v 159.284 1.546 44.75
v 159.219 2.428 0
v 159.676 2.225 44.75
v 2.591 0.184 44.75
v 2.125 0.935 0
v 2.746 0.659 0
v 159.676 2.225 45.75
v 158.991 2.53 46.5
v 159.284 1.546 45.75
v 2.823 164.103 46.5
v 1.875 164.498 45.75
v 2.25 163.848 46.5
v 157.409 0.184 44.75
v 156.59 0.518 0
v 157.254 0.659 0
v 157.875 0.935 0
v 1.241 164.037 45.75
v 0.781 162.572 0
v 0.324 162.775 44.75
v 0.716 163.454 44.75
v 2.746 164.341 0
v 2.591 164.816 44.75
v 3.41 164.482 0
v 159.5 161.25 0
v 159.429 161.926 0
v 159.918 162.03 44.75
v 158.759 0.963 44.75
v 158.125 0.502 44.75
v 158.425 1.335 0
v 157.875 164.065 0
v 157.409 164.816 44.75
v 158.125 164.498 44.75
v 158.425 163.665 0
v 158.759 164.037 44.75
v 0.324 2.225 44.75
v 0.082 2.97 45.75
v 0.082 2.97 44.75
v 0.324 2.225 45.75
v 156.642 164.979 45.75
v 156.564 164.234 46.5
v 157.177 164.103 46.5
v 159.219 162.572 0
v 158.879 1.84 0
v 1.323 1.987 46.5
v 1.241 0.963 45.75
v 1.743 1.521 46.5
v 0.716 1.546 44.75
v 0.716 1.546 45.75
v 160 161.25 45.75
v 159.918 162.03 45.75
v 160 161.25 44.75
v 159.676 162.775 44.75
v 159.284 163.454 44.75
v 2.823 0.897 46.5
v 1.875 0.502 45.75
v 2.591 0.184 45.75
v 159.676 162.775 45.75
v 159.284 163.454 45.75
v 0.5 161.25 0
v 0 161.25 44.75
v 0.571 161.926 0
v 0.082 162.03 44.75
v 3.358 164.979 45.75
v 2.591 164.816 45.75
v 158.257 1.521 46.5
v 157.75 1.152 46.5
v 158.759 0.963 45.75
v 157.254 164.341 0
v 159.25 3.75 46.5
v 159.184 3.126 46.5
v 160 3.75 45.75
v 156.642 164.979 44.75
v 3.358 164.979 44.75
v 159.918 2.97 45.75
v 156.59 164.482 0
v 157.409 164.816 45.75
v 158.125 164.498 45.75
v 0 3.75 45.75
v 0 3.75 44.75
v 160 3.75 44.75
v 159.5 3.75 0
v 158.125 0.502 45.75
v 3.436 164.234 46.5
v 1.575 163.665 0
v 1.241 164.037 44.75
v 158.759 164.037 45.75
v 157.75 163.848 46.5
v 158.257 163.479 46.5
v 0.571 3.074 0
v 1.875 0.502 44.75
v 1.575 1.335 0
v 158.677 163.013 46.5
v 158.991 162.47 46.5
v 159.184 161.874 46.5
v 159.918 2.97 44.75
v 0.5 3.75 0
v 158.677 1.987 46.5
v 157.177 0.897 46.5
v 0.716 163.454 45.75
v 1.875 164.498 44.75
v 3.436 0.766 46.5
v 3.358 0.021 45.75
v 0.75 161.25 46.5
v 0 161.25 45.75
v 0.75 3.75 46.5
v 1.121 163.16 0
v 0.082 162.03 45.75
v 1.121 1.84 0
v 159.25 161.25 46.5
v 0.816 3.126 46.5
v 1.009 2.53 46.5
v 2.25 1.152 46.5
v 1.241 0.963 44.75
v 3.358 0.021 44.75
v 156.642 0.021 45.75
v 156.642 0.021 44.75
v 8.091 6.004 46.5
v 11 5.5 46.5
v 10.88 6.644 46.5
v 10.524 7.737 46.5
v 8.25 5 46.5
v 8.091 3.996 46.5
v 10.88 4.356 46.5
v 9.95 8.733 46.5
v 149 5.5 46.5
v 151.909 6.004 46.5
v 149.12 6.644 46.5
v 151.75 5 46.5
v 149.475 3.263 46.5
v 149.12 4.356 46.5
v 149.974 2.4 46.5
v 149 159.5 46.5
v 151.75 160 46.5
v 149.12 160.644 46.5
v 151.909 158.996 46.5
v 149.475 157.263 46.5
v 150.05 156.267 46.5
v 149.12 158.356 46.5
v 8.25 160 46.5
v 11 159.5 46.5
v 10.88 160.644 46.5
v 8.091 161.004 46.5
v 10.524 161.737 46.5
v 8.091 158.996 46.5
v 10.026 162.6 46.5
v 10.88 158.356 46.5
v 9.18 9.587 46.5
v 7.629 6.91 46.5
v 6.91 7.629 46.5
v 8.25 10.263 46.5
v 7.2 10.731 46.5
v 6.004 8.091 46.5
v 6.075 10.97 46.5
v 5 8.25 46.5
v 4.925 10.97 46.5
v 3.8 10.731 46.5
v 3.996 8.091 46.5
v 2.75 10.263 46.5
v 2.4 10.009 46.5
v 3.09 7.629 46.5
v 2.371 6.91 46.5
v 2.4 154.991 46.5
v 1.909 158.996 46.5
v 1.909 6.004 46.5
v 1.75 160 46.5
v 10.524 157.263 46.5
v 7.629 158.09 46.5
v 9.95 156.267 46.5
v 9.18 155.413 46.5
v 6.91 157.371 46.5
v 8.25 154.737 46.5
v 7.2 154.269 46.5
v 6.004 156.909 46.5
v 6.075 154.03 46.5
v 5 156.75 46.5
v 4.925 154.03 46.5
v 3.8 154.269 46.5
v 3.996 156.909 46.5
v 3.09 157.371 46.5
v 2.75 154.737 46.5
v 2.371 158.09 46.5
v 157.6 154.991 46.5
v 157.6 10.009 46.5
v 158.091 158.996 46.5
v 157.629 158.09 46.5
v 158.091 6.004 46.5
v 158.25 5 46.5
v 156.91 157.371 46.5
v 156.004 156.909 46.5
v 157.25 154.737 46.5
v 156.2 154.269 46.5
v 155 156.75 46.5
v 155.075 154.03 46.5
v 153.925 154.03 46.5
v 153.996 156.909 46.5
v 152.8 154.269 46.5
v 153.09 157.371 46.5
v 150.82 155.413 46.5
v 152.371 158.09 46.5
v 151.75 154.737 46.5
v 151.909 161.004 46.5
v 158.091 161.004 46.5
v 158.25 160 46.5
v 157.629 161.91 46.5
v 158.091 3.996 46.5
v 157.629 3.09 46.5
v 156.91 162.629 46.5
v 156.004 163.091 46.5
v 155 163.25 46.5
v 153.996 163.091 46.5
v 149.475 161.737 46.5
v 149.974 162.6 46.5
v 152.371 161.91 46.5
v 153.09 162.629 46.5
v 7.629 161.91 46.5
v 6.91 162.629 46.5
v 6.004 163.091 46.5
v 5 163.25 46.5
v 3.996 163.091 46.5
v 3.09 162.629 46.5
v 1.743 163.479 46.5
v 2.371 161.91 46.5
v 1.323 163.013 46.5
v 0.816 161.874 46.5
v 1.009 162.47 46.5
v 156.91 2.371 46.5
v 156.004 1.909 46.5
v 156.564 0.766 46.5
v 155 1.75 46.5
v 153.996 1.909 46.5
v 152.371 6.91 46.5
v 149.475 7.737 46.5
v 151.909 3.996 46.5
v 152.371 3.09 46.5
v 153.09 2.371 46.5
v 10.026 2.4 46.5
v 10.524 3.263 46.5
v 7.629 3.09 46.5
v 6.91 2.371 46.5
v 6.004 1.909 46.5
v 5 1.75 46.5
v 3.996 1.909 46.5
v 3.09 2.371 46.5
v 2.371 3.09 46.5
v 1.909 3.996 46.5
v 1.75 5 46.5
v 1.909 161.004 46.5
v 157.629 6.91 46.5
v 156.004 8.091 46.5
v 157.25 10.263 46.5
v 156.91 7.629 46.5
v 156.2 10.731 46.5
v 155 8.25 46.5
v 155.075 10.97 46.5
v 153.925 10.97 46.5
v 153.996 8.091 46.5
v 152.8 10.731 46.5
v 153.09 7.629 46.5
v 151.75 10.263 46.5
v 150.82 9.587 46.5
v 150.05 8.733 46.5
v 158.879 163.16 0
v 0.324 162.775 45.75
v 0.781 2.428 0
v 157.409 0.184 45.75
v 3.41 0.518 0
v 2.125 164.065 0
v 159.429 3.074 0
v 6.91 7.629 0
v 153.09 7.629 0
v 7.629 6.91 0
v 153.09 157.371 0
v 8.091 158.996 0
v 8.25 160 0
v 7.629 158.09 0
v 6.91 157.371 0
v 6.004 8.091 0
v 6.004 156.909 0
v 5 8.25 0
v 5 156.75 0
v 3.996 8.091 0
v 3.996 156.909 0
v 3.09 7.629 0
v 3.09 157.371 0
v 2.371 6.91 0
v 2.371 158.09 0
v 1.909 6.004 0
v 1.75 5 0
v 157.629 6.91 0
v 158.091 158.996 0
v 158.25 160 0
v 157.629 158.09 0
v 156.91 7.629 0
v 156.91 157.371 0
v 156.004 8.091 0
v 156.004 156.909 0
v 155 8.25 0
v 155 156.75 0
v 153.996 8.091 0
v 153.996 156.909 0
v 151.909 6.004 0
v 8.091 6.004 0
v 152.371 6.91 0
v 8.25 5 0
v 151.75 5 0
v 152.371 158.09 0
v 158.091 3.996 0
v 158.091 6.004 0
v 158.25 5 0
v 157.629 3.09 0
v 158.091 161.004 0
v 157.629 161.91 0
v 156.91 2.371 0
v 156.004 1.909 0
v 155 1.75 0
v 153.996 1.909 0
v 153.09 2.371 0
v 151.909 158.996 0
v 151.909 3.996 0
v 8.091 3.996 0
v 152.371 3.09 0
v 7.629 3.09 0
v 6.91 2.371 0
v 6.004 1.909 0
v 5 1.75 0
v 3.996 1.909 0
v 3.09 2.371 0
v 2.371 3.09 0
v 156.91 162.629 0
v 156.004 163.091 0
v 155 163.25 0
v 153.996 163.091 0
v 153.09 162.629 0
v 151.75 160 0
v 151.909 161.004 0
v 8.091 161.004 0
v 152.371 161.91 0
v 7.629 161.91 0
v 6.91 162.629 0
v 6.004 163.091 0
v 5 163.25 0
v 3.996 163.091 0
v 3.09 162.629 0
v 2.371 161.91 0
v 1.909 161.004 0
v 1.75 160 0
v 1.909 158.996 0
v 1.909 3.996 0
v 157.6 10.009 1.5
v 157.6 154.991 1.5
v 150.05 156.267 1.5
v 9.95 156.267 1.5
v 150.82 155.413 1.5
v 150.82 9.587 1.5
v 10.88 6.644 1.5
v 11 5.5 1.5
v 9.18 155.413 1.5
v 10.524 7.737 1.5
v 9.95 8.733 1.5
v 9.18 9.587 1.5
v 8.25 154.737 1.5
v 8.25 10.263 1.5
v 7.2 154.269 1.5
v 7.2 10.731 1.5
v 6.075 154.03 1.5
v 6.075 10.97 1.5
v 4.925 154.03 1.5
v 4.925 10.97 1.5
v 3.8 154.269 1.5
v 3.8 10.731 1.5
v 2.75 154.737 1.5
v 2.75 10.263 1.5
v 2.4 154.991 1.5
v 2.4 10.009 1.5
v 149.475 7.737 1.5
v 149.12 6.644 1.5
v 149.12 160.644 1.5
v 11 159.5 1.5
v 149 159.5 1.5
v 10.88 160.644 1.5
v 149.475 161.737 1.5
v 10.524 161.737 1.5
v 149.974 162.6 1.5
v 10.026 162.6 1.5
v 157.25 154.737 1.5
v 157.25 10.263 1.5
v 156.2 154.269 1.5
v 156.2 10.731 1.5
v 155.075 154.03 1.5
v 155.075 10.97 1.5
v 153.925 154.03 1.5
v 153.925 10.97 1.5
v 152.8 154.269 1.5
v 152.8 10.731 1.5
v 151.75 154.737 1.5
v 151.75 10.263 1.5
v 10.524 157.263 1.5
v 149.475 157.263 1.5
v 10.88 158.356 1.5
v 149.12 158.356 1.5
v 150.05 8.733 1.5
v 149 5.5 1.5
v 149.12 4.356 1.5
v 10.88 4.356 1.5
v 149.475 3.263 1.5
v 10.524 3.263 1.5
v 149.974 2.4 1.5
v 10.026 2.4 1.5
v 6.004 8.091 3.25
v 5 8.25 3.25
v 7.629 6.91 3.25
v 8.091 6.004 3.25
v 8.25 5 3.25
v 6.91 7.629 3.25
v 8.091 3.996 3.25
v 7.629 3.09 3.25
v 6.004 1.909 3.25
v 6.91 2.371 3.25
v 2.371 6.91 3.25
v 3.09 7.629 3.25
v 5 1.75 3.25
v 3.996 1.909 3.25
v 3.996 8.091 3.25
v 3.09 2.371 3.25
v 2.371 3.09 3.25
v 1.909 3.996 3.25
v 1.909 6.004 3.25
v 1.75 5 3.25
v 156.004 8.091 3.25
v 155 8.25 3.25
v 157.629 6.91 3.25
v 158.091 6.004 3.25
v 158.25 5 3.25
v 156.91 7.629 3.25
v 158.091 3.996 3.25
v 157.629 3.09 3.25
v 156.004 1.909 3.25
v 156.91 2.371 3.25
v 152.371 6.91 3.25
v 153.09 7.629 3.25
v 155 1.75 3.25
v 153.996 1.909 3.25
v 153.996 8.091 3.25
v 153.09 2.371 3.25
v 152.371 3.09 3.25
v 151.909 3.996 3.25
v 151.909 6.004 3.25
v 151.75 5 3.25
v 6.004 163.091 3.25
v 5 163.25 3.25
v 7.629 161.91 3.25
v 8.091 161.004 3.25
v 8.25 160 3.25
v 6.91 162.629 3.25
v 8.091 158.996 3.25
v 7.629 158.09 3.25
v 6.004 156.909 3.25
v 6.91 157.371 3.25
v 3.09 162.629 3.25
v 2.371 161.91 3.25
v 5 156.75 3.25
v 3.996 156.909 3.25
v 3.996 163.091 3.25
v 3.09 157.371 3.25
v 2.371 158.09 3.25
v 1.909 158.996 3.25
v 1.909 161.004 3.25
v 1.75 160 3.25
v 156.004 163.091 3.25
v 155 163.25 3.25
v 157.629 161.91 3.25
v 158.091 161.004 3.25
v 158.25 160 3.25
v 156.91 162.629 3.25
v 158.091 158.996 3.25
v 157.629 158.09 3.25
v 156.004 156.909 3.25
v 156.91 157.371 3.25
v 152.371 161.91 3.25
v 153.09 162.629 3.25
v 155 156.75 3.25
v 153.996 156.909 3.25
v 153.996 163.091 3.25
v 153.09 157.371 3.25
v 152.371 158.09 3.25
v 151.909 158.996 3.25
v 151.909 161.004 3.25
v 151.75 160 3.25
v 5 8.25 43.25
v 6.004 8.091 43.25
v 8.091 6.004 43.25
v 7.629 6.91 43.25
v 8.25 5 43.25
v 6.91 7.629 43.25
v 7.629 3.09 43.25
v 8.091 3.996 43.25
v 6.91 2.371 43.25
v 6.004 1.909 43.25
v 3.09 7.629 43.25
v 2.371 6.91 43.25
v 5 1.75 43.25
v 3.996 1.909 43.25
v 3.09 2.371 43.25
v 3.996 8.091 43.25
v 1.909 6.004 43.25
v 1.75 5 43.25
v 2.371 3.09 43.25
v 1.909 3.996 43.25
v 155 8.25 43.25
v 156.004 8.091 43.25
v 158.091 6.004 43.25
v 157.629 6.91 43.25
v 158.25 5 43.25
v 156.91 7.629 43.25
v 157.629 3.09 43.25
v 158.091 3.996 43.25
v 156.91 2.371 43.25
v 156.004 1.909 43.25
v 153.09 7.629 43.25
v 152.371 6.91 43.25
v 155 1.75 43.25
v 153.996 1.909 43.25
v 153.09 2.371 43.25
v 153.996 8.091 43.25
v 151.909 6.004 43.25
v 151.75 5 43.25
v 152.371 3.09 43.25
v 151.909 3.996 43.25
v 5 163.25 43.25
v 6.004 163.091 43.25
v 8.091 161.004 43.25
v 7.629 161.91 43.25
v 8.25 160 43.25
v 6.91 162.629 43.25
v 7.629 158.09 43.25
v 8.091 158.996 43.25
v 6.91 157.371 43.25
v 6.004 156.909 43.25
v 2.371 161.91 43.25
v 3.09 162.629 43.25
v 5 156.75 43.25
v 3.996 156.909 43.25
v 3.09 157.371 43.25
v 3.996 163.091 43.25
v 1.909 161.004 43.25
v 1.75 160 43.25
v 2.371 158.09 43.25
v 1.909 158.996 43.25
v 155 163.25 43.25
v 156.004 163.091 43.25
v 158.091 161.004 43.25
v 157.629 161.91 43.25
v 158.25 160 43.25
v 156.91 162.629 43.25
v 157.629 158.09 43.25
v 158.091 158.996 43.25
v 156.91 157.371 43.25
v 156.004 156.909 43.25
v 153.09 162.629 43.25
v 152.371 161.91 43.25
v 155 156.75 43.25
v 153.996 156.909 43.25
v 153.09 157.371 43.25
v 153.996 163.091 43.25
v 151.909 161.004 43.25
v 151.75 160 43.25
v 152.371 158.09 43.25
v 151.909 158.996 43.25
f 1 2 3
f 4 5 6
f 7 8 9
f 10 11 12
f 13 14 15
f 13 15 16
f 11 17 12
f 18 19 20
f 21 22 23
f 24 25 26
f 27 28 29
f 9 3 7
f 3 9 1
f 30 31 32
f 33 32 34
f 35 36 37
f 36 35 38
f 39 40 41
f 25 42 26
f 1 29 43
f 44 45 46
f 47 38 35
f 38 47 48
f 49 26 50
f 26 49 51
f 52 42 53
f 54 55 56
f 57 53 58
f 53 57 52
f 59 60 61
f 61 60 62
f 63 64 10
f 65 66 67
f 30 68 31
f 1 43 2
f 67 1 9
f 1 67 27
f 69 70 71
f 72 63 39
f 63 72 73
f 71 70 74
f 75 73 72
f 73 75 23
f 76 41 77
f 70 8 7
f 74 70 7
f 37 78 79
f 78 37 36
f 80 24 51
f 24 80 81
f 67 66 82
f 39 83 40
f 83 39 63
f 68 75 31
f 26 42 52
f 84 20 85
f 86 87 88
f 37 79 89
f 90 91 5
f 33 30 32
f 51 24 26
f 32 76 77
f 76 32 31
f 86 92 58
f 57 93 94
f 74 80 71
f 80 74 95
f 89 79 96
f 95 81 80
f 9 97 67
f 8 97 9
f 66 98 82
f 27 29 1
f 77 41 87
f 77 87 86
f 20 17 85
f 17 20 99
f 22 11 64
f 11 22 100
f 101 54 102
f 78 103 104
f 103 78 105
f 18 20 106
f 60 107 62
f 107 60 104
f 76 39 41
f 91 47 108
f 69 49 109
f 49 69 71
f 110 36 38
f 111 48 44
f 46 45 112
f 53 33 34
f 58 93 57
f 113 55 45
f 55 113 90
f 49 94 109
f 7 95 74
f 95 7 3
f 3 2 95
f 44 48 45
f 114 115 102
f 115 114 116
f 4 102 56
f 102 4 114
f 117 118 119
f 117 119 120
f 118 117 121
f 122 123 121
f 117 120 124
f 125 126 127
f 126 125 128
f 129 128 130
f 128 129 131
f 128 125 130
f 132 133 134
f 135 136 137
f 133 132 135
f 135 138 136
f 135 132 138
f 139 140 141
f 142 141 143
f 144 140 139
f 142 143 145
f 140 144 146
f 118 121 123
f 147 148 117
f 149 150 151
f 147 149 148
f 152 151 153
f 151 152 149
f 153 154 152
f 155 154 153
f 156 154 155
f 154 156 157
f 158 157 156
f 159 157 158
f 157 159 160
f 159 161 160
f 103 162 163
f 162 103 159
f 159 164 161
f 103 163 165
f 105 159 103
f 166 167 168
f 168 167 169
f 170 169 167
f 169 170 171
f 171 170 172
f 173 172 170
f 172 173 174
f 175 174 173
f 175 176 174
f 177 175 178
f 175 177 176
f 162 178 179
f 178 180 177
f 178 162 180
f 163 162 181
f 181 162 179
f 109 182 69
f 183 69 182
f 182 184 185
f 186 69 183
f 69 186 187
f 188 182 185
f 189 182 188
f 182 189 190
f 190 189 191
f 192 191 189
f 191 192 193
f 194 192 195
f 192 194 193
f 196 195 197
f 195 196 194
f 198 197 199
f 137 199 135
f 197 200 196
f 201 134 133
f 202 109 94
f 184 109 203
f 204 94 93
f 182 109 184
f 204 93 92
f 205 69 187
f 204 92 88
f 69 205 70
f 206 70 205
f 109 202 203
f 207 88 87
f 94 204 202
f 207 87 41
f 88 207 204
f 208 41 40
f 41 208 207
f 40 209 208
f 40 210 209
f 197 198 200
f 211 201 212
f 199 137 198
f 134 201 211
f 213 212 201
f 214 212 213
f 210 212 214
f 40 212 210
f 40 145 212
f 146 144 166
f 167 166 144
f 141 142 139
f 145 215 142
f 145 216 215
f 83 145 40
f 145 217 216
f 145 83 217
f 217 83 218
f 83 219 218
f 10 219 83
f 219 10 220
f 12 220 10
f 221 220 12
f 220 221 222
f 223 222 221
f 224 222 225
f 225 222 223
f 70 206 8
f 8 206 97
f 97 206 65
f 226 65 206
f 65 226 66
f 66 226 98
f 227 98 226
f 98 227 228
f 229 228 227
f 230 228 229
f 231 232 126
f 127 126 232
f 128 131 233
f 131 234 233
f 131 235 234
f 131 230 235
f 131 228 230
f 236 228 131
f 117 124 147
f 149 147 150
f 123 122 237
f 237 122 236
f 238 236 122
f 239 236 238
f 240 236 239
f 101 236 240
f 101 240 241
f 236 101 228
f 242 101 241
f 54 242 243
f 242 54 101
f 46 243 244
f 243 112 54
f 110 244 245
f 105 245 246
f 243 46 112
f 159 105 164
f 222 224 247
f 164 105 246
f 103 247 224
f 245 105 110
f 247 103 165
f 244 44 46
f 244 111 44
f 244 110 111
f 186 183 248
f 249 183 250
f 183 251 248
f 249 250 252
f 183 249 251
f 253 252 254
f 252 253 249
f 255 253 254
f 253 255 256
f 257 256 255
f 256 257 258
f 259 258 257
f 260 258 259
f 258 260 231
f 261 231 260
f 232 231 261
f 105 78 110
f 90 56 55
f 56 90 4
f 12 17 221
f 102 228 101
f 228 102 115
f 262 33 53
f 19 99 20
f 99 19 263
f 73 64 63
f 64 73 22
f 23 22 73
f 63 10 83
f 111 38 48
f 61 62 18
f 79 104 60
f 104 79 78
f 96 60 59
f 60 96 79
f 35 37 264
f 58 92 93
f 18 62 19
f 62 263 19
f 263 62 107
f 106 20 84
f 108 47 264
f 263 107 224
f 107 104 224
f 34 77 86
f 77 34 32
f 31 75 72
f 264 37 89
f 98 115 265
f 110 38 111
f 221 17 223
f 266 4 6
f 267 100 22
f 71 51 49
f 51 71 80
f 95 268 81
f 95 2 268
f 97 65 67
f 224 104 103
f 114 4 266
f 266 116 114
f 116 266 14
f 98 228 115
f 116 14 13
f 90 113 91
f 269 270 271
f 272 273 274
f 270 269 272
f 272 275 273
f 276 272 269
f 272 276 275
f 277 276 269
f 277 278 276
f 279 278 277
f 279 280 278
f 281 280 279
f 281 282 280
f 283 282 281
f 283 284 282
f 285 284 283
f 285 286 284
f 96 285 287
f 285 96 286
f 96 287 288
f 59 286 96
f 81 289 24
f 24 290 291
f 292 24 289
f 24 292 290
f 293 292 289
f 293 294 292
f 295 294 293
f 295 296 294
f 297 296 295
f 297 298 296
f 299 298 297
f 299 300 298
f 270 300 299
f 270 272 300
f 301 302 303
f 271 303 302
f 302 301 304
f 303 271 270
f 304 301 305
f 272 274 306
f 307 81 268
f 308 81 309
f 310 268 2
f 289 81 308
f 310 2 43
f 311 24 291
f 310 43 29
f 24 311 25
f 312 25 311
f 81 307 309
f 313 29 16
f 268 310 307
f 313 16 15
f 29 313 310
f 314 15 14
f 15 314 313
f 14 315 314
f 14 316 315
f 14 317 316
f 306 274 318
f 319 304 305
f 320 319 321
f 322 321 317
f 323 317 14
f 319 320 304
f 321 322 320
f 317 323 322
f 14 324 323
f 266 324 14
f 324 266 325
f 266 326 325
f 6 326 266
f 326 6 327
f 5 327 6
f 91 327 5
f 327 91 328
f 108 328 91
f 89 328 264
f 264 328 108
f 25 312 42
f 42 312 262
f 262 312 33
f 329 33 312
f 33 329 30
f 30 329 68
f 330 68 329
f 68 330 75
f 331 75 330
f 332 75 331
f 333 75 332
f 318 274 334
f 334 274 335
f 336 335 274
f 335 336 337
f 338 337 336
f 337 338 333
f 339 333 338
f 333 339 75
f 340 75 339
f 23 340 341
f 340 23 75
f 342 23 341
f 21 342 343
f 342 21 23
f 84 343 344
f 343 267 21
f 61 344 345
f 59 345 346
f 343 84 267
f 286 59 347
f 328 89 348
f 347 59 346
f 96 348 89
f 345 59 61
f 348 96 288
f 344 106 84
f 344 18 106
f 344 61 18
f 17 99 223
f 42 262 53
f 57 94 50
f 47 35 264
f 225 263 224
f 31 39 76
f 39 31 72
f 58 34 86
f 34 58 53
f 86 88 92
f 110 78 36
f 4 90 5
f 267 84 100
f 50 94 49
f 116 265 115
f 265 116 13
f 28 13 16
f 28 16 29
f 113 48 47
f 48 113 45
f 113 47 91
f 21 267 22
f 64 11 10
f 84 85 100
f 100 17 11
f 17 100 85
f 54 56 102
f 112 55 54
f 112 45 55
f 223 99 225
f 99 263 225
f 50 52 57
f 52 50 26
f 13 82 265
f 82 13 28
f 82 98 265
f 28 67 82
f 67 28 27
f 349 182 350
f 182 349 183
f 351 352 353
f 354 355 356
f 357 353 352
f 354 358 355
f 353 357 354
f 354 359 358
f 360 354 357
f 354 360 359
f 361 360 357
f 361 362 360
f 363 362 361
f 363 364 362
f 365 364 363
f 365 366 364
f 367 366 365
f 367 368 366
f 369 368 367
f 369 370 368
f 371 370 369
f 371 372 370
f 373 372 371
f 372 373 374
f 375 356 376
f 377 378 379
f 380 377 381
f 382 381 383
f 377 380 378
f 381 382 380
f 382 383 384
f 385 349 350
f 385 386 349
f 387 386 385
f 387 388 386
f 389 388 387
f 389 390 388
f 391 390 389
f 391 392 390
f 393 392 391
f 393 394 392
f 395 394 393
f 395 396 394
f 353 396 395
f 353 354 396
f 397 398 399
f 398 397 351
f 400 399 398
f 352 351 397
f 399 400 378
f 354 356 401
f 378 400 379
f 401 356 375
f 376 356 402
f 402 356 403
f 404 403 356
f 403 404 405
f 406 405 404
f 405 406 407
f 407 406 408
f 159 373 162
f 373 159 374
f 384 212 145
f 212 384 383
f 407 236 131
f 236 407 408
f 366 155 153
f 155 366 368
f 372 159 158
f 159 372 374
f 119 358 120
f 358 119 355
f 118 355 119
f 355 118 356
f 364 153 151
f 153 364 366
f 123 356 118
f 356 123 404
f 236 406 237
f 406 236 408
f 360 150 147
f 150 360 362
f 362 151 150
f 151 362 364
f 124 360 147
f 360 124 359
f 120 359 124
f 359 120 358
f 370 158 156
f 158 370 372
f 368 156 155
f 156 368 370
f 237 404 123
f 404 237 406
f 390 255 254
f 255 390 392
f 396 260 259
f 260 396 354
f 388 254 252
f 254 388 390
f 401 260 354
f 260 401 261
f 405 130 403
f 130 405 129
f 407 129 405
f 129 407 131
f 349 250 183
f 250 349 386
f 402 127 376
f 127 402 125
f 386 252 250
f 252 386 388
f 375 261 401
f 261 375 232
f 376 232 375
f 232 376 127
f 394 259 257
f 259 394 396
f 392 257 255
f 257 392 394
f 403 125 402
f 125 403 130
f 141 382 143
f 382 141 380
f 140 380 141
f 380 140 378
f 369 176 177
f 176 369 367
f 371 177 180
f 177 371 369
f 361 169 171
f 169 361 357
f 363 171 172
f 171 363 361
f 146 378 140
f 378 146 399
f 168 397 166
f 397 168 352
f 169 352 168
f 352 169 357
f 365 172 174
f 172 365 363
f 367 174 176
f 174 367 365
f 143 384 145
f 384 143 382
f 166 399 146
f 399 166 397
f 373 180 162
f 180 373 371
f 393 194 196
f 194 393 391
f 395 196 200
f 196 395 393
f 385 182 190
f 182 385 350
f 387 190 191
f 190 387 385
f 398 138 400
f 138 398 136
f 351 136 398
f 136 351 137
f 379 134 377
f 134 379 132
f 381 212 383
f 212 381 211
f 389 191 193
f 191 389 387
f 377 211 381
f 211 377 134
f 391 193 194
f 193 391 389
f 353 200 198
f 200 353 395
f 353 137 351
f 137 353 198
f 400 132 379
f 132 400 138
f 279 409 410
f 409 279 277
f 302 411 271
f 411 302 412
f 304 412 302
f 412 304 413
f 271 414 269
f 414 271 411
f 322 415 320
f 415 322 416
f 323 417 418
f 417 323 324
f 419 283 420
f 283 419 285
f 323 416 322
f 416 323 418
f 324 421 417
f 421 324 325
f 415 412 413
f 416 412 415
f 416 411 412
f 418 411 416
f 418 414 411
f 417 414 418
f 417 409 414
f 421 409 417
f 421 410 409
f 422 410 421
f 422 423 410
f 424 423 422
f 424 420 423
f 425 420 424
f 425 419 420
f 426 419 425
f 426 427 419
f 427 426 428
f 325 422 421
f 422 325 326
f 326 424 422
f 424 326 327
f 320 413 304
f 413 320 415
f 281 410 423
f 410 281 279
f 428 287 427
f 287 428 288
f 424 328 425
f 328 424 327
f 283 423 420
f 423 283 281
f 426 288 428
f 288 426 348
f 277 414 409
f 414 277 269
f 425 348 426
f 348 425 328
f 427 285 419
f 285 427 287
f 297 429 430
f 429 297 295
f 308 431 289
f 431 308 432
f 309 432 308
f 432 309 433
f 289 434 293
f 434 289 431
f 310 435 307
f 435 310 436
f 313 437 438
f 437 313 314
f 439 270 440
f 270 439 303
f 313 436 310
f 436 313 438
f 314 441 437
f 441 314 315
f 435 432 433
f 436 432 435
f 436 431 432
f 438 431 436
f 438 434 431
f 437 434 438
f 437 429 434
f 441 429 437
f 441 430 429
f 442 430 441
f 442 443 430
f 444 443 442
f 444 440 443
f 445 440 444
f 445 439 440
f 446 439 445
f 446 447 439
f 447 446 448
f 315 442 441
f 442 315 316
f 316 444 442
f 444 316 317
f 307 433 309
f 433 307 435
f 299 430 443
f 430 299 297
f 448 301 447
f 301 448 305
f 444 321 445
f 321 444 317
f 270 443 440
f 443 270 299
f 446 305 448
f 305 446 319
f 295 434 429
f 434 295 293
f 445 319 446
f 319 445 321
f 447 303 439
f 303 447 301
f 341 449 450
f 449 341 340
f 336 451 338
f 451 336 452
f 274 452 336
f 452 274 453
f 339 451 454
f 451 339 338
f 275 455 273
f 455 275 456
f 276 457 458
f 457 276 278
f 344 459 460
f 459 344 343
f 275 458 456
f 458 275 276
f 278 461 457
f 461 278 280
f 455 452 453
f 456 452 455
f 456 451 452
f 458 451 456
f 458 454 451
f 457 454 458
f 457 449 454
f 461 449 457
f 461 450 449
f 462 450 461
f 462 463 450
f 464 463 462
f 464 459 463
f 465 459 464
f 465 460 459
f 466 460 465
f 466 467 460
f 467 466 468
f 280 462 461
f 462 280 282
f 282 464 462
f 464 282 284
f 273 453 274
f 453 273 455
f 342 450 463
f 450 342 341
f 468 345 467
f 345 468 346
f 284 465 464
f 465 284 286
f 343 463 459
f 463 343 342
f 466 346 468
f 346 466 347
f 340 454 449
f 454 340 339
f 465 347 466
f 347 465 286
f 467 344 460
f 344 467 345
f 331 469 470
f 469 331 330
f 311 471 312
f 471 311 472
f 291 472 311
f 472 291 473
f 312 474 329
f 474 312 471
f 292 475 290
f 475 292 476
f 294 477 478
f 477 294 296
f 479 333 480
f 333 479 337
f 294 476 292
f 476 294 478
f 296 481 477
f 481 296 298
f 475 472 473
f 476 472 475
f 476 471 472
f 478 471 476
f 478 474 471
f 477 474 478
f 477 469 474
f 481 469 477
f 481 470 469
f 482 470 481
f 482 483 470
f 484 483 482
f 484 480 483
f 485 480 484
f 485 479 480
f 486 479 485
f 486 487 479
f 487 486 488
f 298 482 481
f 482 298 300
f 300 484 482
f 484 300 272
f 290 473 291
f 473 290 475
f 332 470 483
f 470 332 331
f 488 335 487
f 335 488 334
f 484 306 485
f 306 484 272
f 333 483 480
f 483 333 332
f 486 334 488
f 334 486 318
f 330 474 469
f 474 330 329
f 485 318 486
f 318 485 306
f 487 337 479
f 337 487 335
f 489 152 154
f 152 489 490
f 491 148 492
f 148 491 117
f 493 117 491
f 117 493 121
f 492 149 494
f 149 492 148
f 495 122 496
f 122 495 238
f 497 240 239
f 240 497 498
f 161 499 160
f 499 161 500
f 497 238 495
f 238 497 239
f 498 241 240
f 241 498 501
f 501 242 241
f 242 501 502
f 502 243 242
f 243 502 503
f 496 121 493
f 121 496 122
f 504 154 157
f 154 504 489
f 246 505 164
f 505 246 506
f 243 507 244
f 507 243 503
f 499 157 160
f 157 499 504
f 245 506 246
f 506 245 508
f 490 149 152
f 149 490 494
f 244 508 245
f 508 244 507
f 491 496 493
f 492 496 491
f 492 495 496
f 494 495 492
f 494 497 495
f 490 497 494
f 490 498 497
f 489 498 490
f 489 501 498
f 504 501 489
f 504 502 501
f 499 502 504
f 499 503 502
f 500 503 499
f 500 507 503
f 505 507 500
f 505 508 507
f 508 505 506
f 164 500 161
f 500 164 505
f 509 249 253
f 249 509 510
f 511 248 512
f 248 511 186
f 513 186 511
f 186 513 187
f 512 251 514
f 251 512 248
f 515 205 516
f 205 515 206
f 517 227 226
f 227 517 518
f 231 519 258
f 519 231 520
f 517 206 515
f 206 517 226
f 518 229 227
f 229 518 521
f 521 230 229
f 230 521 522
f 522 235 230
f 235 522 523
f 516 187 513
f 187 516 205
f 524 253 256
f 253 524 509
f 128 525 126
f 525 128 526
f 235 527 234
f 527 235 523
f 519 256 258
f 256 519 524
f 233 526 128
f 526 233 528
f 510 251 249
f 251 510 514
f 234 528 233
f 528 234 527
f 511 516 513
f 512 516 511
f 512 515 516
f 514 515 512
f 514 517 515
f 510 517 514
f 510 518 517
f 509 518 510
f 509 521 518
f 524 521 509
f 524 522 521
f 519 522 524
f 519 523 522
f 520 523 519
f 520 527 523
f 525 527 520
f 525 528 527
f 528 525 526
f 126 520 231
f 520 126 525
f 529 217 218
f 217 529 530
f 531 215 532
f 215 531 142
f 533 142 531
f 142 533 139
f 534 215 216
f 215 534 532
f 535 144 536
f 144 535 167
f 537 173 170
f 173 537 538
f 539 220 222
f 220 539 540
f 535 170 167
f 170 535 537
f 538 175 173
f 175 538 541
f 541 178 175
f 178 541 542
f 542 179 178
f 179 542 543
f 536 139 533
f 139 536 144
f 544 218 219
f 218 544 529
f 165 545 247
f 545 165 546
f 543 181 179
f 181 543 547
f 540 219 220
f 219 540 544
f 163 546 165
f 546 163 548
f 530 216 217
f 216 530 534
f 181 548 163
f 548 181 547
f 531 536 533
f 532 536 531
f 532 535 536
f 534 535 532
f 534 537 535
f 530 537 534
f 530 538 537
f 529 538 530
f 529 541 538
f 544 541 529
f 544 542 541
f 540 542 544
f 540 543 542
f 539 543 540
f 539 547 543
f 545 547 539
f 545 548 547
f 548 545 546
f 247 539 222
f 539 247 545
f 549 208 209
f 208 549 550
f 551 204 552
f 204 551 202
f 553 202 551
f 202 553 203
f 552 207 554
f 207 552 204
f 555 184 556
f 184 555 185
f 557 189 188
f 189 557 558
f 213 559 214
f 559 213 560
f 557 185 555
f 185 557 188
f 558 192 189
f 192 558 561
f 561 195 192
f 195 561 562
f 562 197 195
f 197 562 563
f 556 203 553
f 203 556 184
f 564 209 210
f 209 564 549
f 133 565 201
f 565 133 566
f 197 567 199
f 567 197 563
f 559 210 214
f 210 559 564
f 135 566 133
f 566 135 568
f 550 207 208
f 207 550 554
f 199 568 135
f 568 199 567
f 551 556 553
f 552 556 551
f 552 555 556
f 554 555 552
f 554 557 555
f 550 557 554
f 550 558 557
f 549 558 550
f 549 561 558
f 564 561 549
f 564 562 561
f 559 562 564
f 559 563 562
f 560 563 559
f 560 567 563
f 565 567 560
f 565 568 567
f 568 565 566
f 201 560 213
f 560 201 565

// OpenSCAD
inset = 0.5;
cornerRad=3.75;
trayHt=46.5;
xDim = 160;
yDim = 165;
wallThick = 2.4;
bottomThick = 1.5;

bottomMagnets = 1;

epsilon = 0.1;

tray();

/* tray() -- final form, with magnet holes removed */
module tray() {
   difference() {
      /* remove anything that might have come out of the intended hull */
      intersection() {
         baseShape();
         trayHull();
      }

      /* cut out magnet holes */
      magnetHoles();
   }
}

/* baseShape() -- tray with cut out interior */
module baseShape() {
   difference() {
      trayHull();

      /* cut out interior */
      translate([wallThick, wallThick, bottomThick]) 
         cube([xDim - 2*wallThick, yDim - 2*wallThick, trayHt]);
   }

   cornerPosts();
}

/* corner rounded posts */
module cornerPosts() {
   postRad = 5.5;
   translate([postRad, postRad, 0])
      cylinder($fn=30, r=postRad,h=trayHt);
   translate([xDim - postRad, postRad, 0]) 
      cylinder($fn=30, r=postRad,h=trayHt);
   translate([postRad, yDim - postRad, 0]) 
      cylinder($fn=30, r=postRad,h=trayHt);
   translate([xDim - postRad, yDim - postRad, 0]) 
      cylinder($fn=30, r=postRad,h=trayHt);
}

module magnetHoles() {
   magnetOffset = 1.75;
   magnetRad = 3.25;

   /* bottom */
   if (bottomMagnets) {
      translate([magnetOffset+magnetRad, magnetOffset+magnetRad, -epsilon])
         cylinder($fn=20, r=magnetRad, h=3.25+epsilon);
      translate([xDim - magnetOffset-magnetRad, magnetOffset+magnetRad, -epsilon])
         cylinder($fn=20, r=magnetRad, h=3.25+epsilon);
      translate([magnetOffset+magnetRad, yDim - magnetOffset-magnetRad, -epsilon])
         cylinder($fn=20, r=magnetRad, h=3.25+epsilon);
      translate([xDim -magnetOffset-magnetRad, yDim - magnetOffset-magnetRad, -epsilon])
         cylinder($fn=20, r=magnetRad, h=3.25+epsilon);
   }

   /* top */
   translate([magnetOffset+magnetRad, magnetOffset+magnetRad, trayHt-3.25])
      cylinder($fn=20, r=magnetRad, h=3.25+epsilon);
   translate([xDim - magnetOffset-magnetRad, magnetOffset+magnetRad, trayHt-3.25])
      cylinder($fn=20, r=magnetRad, h=3.25+epsilon);
   translate([magnetOffset+magnetRad, yDim - magnetOffset-magnetRad, trayHt-3.25])
      cylinder($fn=20, r=magnetRad, h=3.25+epsilon);
   translate([xDim -magnetOffset-magnetRad, yDim - magnetOffset-magnetRad, trayHt-3.25])
      cylinder($fn=20, r=magnetRad, h=3.25+epsilon);
}

/* trayHull() -- this is the hull of the thing */
module trayHull() {
   botRad = cornerRad - inset;
   topInset = 0.75;

   hull() {
      /* bottom may be smaller */
      translate([cornerRad, cornerRad, 0])
         cylinder($fn=30, r=botRad,h=1);
      translate([xDim - cornerRad, cornerRad, 0]) 
         cylinder($fn=30, r=botRad,h=1);
      translate([cornerRad, yDim - cornerRad, 0]) 
         cylinder($fn=30, r=botRad,h=1);
      translate([xDim - cornerRad, yDim - cornerRad, 0]) 
         cylinder($fn=30, r=botRad,h=1);

      /* this creates a slight inset around top edge */
      if (1) {
         /* near top */
         translate([cornerRad, cornerRad, trayHt-1-topInset])
            cylinder($fn=30, r=cornerRad,h=1);
         translate([xDim - cornerRad, cornerRad, trayHt-1-topInset]) 
            cylinder($fn=30, r=cornerRad,h=1);
         translate([cornerRad, yDim - cornerRad, trayHt-1-topInset]) 
            cylinder($fn=30, r=cornerRad,h=1);
         translate([xDim - cornerRad, yDim - cornerRad, trayHt-1-topInset]) 
            cylinder($fn=30, r=cornerRad,h=1);
      }

      /* top, slightly inset */
      translate([cornerRad, cornerRad, trayHt-1])
         cylinder($fn=30, r=cornerRad-topInset,h=1);
      translate([xDim - cornerRad, cornerRad, trayHt-1]) 
         cylinder($fn=30, r=cornerRad-topInset,h=1);
      translate([cornerRad, yDim - cornerRad, trayHt-1]) 
         cylinder($fn=30, r=cornerRad-topInset,h=1);
      translate([xDim - cornerRad, yDim - cornerRad, trayHt-1]) 
         cylinder($fn=30, r=cornerRad-topInset,h=1);
   }
}
